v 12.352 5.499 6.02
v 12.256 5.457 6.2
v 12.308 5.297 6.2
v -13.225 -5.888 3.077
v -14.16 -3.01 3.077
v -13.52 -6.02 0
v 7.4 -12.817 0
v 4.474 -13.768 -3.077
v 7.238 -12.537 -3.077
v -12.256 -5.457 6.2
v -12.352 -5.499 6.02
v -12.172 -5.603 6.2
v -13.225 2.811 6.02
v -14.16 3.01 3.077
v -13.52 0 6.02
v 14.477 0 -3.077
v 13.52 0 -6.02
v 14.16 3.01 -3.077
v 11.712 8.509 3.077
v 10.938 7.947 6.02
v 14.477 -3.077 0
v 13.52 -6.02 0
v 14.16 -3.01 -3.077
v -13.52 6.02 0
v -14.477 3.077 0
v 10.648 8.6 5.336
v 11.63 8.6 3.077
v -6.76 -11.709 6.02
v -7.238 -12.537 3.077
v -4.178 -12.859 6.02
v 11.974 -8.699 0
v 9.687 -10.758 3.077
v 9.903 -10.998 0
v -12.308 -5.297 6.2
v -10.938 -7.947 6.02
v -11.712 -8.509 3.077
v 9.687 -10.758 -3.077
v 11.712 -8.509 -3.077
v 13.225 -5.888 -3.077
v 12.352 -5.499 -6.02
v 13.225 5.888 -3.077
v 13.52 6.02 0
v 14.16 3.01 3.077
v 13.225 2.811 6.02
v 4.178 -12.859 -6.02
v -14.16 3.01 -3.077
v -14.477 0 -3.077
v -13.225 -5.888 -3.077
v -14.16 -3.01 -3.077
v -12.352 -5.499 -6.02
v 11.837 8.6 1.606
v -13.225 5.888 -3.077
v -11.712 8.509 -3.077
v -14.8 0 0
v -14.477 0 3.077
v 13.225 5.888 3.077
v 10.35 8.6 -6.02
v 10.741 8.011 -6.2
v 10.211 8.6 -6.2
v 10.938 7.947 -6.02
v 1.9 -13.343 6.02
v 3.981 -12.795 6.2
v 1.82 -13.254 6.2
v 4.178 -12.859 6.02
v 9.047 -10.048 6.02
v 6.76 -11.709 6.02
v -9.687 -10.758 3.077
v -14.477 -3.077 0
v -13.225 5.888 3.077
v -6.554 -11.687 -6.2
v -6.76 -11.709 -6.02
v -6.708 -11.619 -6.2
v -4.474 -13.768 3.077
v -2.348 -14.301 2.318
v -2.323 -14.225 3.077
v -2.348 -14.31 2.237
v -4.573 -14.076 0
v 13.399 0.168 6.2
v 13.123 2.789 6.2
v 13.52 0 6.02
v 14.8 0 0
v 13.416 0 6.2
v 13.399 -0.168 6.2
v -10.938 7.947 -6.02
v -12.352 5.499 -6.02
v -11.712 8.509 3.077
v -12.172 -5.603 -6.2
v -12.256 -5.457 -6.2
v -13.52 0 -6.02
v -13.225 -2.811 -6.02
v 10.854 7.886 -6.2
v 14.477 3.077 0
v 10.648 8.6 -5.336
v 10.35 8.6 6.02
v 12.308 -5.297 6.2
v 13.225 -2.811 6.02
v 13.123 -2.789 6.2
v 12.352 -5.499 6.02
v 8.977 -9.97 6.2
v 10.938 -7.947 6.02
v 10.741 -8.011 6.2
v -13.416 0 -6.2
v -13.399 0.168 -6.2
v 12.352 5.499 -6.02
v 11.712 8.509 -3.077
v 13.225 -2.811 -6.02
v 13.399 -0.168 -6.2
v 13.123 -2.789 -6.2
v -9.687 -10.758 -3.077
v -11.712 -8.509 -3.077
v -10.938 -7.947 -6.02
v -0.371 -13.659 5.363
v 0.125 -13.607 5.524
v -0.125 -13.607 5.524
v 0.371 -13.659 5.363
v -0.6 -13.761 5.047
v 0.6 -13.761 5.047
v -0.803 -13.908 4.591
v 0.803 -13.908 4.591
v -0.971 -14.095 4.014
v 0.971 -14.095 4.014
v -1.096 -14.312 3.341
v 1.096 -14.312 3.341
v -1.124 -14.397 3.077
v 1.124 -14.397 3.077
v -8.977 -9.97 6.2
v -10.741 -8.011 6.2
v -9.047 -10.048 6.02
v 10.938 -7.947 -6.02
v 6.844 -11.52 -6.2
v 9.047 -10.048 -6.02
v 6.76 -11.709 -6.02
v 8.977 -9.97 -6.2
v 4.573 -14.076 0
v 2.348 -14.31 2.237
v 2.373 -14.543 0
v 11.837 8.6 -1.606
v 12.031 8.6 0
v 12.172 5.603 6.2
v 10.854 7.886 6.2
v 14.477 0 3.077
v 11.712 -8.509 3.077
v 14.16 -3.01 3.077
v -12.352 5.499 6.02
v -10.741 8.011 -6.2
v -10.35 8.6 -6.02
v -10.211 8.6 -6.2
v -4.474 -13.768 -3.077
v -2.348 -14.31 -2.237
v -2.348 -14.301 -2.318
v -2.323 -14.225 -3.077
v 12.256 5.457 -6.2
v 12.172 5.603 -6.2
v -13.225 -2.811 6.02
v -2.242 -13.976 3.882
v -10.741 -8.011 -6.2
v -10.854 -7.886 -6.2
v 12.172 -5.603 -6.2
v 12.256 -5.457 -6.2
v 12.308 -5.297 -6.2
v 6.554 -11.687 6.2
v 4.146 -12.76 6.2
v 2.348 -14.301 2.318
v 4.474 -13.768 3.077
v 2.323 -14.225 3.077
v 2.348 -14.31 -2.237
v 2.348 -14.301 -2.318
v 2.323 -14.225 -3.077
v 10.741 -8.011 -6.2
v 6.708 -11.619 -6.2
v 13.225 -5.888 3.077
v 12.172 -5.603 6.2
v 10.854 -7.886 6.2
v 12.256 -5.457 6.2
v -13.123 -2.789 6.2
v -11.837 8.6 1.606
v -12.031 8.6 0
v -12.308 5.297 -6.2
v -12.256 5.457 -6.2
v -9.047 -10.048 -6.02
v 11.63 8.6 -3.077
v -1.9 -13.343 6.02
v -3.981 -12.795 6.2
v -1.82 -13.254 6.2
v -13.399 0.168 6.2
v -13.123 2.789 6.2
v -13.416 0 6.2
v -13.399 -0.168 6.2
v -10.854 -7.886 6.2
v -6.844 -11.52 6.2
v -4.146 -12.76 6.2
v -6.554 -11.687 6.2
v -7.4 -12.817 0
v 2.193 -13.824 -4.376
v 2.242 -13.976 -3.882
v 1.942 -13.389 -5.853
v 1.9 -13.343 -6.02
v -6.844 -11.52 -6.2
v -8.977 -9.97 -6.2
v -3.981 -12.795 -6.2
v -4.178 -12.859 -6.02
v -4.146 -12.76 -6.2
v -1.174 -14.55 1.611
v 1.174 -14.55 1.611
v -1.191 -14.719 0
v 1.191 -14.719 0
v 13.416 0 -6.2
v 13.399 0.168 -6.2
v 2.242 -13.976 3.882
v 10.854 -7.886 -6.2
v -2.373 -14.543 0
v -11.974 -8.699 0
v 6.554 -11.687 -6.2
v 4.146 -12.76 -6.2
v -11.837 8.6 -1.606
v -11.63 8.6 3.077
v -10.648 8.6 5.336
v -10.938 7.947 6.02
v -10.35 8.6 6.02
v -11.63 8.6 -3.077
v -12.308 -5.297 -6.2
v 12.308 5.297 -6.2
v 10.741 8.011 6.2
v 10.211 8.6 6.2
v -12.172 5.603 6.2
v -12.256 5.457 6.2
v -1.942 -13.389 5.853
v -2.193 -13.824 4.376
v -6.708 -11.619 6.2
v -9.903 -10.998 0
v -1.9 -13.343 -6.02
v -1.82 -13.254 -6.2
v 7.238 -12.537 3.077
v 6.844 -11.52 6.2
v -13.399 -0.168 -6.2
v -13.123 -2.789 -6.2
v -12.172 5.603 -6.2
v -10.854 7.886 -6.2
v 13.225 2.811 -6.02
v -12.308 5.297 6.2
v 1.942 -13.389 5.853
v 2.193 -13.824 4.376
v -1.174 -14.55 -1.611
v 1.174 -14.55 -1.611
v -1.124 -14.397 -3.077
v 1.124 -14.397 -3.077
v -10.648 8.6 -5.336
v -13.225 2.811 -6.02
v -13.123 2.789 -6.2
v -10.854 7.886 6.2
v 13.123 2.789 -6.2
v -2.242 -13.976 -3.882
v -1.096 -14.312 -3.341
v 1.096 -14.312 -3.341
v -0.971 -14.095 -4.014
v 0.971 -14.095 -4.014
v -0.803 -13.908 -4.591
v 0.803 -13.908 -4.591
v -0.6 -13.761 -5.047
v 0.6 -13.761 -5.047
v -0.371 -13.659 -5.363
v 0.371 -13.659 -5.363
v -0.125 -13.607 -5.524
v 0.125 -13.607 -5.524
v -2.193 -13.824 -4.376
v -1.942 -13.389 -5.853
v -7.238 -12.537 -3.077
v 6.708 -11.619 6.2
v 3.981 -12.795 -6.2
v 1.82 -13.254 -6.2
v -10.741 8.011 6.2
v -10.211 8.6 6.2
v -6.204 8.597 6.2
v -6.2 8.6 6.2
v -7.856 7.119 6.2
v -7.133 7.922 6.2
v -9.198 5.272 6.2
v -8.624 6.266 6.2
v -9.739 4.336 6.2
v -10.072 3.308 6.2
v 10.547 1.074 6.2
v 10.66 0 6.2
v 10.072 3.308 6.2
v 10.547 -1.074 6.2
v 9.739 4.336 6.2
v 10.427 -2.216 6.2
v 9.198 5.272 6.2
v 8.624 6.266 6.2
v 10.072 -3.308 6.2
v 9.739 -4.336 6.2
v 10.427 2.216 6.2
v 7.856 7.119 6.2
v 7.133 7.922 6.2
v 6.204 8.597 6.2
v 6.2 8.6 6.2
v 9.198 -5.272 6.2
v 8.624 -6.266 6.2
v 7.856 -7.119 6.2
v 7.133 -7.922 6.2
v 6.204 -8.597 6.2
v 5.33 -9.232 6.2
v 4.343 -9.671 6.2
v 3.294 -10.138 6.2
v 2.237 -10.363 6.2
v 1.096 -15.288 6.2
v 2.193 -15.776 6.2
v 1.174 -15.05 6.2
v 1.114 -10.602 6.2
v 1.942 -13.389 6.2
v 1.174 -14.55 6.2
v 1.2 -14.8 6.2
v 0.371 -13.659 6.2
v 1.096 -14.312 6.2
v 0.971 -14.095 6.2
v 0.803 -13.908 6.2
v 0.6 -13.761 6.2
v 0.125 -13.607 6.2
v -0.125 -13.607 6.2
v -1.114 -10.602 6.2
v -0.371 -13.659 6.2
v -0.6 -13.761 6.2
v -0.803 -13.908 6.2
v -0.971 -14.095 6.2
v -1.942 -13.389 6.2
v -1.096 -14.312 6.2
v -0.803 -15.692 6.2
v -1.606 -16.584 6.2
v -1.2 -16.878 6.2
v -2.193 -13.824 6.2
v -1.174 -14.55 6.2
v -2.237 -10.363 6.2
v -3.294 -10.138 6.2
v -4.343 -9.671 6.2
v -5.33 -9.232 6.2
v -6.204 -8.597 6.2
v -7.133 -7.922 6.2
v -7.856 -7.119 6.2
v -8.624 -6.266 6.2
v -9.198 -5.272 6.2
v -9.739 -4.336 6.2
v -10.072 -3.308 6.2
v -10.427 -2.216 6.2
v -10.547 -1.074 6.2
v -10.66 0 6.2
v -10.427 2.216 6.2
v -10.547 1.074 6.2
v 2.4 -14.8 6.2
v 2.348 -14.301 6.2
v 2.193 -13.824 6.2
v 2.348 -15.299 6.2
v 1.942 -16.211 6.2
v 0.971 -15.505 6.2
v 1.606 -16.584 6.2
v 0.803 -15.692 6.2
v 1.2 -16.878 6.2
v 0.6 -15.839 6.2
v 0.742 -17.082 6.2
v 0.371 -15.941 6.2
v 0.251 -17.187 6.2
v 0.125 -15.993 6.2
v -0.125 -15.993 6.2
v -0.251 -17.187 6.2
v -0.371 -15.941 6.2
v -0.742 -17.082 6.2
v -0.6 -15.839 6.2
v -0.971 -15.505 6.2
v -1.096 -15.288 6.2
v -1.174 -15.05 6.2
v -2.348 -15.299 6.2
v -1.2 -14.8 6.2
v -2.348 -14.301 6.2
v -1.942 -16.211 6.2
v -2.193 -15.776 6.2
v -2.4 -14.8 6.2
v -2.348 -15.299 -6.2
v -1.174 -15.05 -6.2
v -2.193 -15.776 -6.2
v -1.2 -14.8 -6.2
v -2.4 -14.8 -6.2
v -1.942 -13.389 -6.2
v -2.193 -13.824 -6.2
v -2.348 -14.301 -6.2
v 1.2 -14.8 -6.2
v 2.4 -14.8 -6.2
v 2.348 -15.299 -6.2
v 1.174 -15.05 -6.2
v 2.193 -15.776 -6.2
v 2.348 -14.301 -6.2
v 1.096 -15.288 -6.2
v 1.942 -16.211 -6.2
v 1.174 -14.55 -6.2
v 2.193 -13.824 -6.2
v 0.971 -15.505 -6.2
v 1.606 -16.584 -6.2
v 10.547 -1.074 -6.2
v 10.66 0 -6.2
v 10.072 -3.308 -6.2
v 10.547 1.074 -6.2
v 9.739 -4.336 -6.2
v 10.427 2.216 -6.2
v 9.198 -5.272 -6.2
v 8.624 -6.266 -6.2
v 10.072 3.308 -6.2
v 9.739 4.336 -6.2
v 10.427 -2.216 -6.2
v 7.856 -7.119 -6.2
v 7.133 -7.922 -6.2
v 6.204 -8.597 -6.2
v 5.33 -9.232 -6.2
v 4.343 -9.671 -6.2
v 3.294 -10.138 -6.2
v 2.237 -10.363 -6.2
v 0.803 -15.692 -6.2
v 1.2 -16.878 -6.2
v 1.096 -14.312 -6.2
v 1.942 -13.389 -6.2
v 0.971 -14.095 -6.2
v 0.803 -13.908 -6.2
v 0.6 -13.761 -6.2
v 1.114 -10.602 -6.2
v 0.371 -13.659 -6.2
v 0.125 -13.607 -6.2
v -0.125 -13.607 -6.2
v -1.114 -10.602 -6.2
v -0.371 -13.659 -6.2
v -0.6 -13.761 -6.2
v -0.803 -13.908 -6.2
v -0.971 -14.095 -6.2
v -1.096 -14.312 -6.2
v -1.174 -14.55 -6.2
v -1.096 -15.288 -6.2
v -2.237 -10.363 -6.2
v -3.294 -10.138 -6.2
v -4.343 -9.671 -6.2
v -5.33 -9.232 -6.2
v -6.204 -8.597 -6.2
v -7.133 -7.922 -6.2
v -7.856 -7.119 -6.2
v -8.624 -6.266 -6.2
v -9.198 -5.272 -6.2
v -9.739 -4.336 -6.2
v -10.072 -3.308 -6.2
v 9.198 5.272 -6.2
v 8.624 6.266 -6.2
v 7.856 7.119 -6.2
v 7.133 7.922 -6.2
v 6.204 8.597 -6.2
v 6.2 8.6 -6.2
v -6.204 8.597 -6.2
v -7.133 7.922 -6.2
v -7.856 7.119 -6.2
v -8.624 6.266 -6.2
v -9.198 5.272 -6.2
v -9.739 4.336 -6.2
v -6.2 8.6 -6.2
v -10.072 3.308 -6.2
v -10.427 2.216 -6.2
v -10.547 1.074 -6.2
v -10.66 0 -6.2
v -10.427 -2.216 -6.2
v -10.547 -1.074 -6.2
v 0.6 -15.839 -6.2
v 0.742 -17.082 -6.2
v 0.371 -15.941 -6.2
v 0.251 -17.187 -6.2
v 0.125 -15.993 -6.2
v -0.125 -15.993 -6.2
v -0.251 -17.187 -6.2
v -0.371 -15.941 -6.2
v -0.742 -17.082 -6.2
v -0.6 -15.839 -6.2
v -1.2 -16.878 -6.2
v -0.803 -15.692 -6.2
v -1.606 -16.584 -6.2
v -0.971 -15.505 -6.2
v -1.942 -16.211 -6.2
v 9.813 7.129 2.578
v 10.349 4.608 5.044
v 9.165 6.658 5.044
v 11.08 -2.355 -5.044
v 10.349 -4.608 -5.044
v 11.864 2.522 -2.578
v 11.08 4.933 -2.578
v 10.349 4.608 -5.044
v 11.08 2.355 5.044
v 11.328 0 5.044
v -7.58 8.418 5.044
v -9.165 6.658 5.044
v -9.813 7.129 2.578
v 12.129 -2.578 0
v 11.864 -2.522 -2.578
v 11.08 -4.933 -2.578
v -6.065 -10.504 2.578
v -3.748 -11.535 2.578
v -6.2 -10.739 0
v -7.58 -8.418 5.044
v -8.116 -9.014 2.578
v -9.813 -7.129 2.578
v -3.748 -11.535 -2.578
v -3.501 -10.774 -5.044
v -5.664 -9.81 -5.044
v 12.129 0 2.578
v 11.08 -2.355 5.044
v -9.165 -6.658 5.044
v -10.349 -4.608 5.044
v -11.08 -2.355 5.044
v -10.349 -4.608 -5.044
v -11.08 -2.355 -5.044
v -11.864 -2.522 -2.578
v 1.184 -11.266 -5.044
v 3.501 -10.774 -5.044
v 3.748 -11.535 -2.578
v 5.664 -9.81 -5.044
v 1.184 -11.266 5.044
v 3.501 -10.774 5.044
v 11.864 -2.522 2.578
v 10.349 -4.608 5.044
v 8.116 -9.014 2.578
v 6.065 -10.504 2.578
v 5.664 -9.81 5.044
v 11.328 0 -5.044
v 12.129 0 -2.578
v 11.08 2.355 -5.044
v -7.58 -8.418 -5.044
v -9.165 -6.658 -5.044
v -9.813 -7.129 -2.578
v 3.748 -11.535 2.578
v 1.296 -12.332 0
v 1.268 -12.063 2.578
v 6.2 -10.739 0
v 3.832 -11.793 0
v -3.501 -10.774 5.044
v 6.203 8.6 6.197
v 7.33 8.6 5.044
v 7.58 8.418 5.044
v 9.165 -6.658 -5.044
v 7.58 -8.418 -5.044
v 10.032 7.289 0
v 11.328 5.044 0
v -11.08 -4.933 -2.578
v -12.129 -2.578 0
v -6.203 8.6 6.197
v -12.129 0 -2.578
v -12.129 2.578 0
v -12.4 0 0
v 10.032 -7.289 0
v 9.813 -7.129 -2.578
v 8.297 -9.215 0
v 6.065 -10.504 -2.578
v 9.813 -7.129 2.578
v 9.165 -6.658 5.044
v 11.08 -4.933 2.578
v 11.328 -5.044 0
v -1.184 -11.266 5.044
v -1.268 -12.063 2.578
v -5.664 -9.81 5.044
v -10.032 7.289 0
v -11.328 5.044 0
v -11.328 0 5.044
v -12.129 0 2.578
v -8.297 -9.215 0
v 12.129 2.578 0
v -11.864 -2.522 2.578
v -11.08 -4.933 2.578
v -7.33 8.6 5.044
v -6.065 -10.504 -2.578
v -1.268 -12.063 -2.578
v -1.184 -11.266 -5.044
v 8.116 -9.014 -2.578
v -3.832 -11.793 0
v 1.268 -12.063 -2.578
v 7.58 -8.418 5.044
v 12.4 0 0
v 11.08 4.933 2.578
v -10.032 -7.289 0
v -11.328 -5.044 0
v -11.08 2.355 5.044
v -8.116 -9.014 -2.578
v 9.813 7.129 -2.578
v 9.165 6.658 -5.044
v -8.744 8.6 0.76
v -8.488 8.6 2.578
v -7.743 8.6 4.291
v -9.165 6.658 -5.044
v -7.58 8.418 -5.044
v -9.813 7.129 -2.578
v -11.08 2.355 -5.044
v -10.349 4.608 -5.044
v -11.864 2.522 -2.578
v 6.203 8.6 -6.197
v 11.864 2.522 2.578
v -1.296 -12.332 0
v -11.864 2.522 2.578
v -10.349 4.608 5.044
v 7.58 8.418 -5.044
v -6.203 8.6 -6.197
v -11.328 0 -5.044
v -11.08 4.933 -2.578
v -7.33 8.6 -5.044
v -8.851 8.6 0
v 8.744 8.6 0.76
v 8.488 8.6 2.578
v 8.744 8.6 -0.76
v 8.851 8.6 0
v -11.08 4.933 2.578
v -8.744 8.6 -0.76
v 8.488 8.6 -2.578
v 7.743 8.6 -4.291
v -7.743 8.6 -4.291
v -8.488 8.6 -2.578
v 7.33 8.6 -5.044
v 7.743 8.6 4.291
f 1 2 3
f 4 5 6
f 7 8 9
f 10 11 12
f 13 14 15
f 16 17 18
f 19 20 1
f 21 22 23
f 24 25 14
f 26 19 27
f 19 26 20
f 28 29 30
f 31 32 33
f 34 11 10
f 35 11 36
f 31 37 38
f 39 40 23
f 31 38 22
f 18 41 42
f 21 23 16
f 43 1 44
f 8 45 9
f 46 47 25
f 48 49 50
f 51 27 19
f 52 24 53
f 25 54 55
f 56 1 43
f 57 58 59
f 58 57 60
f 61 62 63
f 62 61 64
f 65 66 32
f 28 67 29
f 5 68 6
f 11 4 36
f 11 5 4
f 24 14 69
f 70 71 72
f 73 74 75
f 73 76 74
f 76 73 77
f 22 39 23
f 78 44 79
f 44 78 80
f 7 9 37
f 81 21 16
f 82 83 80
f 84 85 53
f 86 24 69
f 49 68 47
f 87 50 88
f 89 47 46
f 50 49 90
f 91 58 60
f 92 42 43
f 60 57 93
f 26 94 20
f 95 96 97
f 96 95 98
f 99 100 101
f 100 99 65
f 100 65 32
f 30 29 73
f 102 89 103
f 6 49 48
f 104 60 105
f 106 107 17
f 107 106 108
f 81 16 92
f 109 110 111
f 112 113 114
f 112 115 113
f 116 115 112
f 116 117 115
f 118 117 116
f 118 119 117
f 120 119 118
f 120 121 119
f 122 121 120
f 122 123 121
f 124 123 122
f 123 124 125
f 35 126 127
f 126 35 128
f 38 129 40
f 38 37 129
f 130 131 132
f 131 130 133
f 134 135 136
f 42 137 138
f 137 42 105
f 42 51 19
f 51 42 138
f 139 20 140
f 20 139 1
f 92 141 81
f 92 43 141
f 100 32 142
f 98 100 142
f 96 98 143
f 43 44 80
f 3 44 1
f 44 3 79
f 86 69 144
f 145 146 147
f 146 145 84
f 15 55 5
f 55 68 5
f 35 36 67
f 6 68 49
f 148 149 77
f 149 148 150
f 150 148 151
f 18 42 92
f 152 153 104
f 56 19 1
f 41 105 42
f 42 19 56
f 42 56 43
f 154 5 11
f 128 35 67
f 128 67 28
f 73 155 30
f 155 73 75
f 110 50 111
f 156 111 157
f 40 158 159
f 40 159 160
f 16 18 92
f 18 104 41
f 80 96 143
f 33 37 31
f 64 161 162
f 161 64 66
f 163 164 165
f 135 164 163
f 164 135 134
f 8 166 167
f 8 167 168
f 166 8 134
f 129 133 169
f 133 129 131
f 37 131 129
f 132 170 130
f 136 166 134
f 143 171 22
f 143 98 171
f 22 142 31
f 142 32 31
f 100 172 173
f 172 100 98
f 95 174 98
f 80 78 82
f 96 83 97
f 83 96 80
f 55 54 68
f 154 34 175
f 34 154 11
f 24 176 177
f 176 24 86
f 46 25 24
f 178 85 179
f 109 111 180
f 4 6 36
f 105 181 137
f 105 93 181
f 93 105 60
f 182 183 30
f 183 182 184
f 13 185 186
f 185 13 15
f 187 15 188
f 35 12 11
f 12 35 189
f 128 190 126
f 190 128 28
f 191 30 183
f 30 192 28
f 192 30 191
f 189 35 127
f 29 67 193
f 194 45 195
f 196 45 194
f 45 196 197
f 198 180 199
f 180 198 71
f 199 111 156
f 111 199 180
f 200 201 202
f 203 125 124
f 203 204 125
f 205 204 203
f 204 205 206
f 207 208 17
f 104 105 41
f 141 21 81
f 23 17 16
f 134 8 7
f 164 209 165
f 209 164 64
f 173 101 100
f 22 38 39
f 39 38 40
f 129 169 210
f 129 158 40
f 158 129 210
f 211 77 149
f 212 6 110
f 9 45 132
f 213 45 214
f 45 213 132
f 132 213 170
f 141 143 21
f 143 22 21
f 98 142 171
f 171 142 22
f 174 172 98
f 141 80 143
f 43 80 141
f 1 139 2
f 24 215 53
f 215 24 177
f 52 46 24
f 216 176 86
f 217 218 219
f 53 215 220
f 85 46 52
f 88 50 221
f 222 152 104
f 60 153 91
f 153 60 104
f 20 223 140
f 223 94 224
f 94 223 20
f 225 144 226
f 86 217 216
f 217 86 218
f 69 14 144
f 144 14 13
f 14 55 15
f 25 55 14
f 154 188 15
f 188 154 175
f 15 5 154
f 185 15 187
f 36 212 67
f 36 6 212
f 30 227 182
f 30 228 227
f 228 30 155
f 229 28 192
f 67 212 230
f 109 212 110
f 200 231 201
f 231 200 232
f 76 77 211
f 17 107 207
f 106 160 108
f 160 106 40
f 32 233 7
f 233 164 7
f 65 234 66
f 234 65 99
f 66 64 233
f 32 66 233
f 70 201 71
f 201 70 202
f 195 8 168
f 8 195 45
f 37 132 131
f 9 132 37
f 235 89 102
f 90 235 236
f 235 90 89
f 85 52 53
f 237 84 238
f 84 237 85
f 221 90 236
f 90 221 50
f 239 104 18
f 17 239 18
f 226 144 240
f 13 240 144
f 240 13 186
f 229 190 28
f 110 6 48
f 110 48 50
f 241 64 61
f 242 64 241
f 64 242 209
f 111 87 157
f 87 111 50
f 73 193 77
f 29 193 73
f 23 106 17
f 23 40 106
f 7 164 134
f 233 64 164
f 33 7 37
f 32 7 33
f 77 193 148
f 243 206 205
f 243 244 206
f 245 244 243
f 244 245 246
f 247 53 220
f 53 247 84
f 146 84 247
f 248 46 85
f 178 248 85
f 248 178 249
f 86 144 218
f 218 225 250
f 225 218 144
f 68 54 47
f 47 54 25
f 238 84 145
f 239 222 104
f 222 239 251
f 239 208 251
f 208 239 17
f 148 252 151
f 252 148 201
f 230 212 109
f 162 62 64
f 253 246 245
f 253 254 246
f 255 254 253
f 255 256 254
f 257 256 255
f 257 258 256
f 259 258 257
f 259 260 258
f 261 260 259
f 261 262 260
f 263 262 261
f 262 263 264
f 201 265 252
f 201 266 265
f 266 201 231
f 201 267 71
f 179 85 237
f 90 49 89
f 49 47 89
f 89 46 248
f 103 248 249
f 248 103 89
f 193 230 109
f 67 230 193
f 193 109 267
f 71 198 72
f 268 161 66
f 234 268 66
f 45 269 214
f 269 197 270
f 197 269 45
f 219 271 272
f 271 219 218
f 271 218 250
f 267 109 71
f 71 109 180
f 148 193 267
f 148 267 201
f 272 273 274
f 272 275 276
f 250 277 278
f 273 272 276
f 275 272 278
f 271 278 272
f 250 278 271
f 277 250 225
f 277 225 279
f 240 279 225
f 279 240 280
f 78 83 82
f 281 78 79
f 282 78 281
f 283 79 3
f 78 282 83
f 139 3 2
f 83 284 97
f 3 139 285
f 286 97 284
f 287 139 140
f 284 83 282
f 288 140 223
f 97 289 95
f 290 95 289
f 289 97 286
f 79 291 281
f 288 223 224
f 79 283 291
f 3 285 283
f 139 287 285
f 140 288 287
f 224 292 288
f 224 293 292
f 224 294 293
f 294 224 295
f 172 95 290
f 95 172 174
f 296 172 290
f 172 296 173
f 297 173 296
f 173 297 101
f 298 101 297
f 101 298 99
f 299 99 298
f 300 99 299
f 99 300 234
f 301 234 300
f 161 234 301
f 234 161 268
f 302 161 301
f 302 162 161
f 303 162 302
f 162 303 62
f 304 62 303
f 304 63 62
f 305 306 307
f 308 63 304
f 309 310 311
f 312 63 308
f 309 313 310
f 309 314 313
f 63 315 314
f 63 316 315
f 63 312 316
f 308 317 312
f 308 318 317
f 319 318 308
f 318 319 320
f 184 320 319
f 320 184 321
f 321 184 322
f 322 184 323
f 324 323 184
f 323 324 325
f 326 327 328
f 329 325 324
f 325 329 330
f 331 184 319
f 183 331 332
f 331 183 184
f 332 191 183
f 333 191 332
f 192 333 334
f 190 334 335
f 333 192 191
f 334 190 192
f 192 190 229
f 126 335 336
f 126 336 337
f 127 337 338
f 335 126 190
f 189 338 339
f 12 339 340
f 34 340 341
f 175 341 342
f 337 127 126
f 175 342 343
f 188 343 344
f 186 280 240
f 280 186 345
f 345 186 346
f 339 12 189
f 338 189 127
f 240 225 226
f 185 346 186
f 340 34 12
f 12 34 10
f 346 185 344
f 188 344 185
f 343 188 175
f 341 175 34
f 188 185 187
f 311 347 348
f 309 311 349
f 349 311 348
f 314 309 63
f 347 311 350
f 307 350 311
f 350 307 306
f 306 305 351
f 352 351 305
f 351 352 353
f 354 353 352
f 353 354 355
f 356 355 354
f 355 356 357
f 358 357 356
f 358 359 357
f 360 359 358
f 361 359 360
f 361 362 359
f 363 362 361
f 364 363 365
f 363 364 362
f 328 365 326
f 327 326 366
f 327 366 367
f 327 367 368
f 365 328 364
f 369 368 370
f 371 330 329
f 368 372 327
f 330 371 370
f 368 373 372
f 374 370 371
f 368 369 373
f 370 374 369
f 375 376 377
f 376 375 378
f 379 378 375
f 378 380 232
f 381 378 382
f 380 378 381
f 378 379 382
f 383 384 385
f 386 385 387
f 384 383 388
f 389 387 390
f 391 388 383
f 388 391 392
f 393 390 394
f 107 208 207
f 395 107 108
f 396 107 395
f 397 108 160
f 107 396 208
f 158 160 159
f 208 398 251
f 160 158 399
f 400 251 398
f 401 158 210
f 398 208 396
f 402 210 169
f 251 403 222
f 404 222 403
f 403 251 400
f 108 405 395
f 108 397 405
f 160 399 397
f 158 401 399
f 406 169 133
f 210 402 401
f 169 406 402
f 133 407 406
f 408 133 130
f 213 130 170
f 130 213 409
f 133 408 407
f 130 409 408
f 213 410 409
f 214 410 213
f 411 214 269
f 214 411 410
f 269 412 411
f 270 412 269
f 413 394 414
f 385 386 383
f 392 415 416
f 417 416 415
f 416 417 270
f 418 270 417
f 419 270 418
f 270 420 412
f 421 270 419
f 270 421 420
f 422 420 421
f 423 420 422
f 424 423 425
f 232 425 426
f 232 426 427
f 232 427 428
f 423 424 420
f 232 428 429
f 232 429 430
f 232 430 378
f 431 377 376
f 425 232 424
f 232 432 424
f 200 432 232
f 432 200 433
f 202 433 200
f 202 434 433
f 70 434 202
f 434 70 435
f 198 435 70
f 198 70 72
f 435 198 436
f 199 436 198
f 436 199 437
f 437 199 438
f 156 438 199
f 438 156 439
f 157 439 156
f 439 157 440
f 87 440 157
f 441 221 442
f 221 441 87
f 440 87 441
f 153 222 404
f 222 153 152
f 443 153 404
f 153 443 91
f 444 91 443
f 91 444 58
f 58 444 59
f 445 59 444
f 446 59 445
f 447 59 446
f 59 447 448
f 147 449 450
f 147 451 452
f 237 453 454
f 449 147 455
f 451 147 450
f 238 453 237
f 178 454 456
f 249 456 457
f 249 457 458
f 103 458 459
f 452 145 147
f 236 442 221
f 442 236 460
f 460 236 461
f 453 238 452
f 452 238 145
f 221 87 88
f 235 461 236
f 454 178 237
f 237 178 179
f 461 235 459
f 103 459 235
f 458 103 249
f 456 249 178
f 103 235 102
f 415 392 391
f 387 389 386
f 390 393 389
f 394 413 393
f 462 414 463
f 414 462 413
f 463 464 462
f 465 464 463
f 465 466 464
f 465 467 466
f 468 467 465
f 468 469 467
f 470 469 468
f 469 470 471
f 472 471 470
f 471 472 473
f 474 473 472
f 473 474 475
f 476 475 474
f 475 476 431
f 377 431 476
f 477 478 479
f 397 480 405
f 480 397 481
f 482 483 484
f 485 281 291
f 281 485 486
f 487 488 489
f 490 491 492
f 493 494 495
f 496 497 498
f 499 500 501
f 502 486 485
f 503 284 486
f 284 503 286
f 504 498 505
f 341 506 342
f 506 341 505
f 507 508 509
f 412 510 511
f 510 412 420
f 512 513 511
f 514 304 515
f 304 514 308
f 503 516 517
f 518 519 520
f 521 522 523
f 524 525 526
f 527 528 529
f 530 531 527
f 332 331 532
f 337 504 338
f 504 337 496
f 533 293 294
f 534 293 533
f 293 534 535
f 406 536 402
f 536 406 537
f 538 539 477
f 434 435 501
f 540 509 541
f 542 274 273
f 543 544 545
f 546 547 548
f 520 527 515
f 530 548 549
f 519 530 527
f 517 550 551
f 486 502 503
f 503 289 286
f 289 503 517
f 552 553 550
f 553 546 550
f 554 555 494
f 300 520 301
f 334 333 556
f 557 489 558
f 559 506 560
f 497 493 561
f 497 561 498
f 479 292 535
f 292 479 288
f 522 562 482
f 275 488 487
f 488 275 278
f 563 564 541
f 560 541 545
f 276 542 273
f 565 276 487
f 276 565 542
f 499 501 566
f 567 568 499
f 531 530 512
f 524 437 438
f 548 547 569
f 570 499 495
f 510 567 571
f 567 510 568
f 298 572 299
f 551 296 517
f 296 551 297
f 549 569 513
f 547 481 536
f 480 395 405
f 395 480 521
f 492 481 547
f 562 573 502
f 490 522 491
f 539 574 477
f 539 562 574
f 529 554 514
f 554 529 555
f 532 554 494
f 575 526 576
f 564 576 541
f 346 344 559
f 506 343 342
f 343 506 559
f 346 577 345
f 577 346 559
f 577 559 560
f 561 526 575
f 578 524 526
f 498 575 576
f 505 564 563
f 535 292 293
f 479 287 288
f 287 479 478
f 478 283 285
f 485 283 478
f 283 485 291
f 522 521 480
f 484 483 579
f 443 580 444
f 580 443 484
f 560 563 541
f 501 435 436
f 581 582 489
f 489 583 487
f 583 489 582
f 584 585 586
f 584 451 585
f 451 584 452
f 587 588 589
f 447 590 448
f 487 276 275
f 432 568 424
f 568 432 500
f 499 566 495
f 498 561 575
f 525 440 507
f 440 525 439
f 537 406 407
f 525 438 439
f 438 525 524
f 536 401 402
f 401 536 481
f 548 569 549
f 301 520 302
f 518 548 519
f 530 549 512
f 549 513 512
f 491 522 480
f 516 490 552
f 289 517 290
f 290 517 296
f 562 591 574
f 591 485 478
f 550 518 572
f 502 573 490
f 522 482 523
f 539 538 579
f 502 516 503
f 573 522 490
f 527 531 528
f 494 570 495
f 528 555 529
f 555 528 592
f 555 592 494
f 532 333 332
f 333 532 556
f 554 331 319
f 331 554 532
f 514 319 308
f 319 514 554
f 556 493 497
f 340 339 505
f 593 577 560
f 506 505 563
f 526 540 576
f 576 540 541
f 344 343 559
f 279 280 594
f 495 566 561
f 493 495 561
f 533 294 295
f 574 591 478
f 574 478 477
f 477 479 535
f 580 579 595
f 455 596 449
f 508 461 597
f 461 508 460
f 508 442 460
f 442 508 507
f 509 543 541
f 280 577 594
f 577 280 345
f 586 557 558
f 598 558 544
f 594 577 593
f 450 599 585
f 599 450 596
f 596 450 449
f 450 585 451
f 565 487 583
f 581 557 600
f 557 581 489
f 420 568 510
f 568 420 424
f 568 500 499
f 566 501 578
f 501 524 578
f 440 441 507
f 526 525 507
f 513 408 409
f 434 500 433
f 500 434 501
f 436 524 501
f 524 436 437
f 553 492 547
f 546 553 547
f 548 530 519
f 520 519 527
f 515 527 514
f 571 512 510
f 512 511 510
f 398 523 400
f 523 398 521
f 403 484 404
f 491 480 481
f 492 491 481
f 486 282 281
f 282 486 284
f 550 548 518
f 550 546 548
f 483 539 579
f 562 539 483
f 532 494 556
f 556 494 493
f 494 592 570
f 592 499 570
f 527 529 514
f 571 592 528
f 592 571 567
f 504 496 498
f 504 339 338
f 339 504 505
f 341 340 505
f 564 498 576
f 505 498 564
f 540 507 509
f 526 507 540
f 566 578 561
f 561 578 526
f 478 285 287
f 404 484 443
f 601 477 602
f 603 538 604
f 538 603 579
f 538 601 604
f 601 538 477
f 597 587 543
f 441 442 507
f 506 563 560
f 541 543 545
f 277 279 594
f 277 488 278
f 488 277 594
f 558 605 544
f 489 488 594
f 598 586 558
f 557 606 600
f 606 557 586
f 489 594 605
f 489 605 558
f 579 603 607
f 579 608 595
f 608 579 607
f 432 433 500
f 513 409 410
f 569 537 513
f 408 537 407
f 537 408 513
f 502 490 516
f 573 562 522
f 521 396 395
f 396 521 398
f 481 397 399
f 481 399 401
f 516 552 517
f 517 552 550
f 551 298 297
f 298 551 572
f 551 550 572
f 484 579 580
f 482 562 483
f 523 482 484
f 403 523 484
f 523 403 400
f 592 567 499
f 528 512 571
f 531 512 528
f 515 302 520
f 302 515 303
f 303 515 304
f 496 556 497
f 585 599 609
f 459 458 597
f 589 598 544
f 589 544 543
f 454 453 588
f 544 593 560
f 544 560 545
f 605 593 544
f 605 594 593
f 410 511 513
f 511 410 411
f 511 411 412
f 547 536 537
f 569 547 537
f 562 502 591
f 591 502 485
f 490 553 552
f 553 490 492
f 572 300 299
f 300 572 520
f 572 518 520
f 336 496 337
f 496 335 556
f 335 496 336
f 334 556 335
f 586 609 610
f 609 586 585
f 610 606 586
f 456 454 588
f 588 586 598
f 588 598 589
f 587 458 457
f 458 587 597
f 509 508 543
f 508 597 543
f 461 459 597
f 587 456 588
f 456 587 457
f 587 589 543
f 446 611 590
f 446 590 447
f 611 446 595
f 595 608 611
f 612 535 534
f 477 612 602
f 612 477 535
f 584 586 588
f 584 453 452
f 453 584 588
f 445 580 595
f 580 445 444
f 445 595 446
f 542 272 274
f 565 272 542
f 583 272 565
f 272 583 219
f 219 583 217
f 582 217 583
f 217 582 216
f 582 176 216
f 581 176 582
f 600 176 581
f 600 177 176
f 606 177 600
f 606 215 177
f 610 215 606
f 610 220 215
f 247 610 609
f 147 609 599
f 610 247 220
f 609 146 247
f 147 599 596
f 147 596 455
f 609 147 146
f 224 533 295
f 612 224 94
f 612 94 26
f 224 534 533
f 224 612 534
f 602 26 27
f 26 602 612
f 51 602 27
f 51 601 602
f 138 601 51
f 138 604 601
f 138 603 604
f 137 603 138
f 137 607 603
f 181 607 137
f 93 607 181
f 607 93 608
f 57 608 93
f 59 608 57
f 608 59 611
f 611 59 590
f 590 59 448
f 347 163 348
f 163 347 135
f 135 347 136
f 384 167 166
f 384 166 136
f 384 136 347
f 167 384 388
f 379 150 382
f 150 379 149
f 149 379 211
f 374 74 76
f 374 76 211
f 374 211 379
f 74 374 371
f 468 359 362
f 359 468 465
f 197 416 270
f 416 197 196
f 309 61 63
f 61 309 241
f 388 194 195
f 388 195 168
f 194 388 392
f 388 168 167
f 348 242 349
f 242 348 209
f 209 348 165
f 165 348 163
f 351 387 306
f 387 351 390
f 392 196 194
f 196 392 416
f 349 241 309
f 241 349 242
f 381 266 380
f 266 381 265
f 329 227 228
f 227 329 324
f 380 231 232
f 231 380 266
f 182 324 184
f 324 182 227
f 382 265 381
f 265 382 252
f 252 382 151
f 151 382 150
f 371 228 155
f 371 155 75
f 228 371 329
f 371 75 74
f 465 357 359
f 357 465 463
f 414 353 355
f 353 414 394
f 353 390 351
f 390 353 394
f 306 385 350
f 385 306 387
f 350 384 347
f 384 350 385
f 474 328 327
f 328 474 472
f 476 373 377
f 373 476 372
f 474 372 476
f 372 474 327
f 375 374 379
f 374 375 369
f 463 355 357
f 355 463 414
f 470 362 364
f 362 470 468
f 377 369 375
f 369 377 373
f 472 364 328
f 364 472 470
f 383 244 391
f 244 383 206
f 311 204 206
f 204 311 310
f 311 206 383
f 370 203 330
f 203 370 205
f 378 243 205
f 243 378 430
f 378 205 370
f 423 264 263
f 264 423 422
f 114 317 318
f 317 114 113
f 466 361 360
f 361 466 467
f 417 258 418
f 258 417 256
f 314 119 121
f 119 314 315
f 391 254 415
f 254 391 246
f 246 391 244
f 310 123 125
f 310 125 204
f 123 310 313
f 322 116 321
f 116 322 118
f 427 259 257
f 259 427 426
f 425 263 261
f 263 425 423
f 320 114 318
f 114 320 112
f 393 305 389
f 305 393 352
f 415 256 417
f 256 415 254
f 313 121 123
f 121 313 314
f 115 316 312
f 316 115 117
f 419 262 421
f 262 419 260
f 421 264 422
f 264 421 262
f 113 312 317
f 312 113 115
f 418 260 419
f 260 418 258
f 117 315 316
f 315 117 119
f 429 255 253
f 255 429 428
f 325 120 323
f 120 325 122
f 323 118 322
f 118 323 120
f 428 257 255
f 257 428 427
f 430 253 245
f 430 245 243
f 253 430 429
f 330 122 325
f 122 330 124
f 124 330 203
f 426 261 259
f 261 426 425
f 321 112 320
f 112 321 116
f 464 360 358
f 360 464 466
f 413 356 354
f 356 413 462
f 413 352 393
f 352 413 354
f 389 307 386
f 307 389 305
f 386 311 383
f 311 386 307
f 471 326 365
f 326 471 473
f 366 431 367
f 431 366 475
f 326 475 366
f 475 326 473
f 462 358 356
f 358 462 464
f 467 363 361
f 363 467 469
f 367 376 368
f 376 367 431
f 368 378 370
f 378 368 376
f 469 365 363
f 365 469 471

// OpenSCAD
a = 2.4; // Thickness of the holder
d = 24.8; // Diameter of the ball
b = d/2; // width of the holder
c = d/20; // reduce diameter of clip by this much to ensure tight grip.
e = d/4; // Cutout size

$fs=0.02;
difference() {
    intersection() {
        sphere(r=d/2+a);
        cube([d+2*a, d+2*a, b], center=true);
    }
    sphere(r=d/2);
    translate([0,d+2*a-e,0]) cube([d+2*a, d+2*a, b], center=true);

}

translate([0, -(d/2+a), 0])
difference() {
    cylinder(b, r=a, center=true);
    cylinder(b, r=a/2, center=true);
}
